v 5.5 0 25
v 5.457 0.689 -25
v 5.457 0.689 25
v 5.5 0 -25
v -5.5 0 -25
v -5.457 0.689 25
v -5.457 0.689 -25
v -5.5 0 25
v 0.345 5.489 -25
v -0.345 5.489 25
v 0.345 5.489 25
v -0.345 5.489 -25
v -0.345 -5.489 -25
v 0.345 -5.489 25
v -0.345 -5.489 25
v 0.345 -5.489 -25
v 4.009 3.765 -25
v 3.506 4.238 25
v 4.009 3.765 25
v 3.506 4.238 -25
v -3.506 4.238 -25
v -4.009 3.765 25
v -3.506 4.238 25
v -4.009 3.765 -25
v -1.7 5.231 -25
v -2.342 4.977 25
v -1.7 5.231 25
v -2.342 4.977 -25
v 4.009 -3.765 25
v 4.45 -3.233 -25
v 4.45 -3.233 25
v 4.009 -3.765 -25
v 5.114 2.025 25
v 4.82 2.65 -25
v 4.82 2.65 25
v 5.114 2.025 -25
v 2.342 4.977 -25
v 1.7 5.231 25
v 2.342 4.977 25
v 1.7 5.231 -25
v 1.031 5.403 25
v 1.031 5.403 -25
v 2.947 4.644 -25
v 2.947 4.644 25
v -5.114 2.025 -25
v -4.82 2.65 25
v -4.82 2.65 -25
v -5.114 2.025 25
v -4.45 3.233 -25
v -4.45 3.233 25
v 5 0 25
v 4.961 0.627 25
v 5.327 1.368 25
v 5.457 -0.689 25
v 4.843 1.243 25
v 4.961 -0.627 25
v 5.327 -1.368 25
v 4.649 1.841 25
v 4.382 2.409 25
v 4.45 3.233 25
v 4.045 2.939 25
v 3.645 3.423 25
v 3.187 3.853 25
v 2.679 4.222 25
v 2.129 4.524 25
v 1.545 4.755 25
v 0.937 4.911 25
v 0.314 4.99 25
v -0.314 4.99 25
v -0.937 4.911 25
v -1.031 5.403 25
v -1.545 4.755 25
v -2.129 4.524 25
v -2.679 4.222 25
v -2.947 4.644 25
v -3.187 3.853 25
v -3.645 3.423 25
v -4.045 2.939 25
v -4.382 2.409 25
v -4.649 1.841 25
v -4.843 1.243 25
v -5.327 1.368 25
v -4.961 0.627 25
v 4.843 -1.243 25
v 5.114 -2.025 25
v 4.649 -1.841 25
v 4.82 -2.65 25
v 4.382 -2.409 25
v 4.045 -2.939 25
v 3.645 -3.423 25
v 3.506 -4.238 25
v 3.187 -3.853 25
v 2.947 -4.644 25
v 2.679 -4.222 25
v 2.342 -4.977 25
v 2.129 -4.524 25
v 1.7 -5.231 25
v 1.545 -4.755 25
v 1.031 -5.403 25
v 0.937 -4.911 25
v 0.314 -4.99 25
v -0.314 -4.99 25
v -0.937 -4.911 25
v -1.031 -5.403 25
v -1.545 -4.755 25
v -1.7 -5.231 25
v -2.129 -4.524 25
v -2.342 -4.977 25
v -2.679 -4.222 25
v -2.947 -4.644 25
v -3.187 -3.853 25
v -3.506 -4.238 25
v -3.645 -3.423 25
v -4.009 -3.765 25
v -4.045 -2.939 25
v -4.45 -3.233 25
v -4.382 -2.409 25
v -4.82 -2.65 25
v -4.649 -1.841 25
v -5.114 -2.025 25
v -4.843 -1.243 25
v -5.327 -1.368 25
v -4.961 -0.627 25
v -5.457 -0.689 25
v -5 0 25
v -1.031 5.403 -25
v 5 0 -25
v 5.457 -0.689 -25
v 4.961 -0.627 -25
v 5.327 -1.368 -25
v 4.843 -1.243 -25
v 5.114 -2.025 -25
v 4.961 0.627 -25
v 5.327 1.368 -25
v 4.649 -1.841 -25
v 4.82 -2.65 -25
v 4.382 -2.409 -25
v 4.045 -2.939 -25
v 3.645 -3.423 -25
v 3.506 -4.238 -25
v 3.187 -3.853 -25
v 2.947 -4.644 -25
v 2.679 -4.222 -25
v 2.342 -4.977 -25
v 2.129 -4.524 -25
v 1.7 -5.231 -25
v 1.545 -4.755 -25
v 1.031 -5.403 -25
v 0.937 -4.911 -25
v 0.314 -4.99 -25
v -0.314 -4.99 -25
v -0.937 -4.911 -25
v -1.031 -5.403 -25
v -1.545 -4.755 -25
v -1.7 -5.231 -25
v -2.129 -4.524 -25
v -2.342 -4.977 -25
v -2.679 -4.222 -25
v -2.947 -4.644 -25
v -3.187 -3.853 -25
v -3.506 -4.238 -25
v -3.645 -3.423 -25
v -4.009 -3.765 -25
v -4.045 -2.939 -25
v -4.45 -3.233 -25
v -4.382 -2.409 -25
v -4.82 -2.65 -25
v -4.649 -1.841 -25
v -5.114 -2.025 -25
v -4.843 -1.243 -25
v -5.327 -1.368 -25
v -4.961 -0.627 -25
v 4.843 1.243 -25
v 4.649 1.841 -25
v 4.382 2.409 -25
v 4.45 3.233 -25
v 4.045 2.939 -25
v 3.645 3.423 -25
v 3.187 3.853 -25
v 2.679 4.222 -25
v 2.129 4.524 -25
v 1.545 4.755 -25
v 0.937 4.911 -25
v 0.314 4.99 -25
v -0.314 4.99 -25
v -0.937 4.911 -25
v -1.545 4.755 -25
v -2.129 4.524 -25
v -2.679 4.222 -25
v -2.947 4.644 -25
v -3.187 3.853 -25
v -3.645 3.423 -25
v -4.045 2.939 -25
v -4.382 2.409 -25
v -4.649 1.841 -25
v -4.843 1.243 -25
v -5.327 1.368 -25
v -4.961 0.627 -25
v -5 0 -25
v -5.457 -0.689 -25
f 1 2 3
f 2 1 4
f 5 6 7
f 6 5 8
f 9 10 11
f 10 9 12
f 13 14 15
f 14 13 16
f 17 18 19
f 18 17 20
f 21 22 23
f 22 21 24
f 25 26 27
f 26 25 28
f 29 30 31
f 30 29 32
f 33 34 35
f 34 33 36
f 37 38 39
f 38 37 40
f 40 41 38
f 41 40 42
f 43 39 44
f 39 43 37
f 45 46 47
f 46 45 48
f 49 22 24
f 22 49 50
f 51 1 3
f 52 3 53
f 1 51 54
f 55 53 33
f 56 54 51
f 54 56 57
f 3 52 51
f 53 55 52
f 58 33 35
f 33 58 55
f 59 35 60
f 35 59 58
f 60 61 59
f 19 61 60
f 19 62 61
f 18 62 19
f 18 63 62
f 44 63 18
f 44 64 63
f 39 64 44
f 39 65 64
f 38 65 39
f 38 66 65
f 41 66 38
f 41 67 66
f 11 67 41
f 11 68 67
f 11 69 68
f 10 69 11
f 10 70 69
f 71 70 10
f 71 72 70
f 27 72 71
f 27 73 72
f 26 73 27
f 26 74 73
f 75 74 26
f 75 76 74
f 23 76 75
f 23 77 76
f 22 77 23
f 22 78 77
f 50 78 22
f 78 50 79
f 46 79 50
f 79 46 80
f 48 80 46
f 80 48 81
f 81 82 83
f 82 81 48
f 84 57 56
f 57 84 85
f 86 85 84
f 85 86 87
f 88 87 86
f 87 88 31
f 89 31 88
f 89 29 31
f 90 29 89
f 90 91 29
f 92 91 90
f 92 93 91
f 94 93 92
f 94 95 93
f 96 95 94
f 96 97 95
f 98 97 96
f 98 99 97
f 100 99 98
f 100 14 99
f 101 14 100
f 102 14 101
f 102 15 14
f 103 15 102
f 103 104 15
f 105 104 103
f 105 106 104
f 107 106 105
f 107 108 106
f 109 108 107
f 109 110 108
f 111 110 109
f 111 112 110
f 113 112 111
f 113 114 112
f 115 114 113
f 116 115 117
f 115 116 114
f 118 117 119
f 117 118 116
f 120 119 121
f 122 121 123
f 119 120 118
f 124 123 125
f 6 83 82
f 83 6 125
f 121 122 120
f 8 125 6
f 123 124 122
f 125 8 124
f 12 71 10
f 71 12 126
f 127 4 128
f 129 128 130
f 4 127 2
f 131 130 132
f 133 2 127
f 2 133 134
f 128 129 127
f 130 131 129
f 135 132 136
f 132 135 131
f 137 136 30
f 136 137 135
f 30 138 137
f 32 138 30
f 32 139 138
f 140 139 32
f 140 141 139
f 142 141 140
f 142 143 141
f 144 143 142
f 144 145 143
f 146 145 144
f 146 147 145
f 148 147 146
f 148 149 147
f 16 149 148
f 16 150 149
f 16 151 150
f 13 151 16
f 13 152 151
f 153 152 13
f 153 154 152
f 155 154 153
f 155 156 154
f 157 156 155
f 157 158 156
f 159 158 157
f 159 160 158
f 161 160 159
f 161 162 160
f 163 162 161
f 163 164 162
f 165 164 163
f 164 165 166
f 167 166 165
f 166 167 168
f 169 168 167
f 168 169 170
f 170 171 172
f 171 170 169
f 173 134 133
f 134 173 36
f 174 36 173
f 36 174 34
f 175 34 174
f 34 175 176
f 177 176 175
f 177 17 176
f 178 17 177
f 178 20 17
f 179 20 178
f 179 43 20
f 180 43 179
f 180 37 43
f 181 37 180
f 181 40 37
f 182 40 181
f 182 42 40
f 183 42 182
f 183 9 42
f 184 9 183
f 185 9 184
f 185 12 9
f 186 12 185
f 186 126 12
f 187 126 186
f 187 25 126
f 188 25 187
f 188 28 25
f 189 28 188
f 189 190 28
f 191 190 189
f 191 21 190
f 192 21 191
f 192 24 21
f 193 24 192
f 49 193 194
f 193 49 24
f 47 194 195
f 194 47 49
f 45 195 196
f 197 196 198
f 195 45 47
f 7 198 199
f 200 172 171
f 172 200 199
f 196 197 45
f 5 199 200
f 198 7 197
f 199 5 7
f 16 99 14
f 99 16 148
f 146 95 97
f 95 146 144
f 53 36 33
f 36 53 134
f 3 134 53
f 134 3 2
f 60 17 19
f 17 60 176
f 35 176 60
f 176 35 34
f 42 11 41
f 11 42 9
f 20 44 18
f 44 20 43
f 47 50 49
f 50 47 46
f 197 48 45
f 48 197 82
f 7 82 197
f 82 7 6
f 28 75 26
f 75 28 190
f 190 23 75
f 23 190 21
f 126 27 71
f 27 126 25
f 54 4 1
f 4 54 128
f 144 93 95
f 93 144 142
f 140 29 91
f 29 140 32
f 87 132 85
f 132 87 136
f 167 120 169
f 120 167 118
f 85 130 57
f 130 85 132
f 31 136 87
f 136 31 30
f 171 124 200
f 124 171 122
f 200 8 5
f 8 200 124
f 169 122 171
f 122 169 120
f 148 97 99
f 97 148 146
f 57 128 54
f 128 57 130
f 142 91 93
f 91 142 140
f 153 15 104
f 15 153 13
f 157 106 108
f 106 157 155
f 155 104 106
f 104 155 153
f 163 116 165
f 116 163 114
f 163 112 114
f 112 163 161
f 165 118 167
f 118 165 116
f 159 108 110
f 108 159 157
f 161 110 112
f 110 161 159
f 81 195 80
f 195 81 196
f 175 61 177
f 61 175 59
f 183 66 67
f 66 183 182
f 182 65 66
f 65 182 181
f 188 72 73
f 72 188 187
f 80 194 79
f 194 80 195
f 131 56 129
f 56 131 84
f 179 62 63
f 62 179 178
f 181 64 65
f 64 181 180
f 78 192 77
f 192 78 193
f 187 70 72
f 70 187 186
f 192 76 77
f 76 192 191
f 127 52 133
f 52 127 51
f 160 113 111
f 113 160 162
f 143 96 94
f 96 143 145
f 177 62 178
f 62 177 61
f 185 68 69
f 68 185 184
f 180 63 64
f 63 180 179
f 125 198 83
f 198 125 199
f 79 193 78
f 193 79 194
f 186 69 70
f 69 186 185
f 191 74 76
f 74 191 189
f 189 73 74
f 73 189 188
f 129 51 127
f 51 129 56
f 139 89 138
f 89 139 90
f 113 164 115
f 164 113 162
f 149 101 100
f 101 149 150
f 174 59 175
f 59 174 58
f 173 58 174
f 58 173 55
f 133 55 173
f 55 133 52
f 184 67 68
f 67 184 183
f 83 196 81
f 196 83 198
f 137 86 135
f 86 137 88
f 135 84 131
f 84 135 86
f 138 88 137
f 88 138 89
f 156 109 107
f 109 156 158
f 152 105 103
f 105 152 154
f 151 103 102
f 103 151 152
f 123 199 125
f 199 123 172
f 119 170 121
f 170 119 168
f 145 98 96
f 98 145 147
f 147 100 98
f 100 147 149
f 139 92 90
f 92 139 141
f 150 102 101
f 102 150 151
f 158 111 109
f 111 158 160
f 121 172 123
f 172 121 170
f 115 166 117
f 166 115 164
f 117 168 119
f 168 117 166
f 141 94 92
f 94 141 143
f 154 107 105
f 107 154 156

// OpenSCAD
$fn = 50;


difference() {
	union() {
		translate(v = [0, 0, -25.0000000000]) {
			cylinder(h = 50, r = 5.5000000000);
		}
	}
	union() {
		translate(v = [0, 0, -100.0000000000]) {
			cylinder(h = 200, r = 5);
		}
	}
}
